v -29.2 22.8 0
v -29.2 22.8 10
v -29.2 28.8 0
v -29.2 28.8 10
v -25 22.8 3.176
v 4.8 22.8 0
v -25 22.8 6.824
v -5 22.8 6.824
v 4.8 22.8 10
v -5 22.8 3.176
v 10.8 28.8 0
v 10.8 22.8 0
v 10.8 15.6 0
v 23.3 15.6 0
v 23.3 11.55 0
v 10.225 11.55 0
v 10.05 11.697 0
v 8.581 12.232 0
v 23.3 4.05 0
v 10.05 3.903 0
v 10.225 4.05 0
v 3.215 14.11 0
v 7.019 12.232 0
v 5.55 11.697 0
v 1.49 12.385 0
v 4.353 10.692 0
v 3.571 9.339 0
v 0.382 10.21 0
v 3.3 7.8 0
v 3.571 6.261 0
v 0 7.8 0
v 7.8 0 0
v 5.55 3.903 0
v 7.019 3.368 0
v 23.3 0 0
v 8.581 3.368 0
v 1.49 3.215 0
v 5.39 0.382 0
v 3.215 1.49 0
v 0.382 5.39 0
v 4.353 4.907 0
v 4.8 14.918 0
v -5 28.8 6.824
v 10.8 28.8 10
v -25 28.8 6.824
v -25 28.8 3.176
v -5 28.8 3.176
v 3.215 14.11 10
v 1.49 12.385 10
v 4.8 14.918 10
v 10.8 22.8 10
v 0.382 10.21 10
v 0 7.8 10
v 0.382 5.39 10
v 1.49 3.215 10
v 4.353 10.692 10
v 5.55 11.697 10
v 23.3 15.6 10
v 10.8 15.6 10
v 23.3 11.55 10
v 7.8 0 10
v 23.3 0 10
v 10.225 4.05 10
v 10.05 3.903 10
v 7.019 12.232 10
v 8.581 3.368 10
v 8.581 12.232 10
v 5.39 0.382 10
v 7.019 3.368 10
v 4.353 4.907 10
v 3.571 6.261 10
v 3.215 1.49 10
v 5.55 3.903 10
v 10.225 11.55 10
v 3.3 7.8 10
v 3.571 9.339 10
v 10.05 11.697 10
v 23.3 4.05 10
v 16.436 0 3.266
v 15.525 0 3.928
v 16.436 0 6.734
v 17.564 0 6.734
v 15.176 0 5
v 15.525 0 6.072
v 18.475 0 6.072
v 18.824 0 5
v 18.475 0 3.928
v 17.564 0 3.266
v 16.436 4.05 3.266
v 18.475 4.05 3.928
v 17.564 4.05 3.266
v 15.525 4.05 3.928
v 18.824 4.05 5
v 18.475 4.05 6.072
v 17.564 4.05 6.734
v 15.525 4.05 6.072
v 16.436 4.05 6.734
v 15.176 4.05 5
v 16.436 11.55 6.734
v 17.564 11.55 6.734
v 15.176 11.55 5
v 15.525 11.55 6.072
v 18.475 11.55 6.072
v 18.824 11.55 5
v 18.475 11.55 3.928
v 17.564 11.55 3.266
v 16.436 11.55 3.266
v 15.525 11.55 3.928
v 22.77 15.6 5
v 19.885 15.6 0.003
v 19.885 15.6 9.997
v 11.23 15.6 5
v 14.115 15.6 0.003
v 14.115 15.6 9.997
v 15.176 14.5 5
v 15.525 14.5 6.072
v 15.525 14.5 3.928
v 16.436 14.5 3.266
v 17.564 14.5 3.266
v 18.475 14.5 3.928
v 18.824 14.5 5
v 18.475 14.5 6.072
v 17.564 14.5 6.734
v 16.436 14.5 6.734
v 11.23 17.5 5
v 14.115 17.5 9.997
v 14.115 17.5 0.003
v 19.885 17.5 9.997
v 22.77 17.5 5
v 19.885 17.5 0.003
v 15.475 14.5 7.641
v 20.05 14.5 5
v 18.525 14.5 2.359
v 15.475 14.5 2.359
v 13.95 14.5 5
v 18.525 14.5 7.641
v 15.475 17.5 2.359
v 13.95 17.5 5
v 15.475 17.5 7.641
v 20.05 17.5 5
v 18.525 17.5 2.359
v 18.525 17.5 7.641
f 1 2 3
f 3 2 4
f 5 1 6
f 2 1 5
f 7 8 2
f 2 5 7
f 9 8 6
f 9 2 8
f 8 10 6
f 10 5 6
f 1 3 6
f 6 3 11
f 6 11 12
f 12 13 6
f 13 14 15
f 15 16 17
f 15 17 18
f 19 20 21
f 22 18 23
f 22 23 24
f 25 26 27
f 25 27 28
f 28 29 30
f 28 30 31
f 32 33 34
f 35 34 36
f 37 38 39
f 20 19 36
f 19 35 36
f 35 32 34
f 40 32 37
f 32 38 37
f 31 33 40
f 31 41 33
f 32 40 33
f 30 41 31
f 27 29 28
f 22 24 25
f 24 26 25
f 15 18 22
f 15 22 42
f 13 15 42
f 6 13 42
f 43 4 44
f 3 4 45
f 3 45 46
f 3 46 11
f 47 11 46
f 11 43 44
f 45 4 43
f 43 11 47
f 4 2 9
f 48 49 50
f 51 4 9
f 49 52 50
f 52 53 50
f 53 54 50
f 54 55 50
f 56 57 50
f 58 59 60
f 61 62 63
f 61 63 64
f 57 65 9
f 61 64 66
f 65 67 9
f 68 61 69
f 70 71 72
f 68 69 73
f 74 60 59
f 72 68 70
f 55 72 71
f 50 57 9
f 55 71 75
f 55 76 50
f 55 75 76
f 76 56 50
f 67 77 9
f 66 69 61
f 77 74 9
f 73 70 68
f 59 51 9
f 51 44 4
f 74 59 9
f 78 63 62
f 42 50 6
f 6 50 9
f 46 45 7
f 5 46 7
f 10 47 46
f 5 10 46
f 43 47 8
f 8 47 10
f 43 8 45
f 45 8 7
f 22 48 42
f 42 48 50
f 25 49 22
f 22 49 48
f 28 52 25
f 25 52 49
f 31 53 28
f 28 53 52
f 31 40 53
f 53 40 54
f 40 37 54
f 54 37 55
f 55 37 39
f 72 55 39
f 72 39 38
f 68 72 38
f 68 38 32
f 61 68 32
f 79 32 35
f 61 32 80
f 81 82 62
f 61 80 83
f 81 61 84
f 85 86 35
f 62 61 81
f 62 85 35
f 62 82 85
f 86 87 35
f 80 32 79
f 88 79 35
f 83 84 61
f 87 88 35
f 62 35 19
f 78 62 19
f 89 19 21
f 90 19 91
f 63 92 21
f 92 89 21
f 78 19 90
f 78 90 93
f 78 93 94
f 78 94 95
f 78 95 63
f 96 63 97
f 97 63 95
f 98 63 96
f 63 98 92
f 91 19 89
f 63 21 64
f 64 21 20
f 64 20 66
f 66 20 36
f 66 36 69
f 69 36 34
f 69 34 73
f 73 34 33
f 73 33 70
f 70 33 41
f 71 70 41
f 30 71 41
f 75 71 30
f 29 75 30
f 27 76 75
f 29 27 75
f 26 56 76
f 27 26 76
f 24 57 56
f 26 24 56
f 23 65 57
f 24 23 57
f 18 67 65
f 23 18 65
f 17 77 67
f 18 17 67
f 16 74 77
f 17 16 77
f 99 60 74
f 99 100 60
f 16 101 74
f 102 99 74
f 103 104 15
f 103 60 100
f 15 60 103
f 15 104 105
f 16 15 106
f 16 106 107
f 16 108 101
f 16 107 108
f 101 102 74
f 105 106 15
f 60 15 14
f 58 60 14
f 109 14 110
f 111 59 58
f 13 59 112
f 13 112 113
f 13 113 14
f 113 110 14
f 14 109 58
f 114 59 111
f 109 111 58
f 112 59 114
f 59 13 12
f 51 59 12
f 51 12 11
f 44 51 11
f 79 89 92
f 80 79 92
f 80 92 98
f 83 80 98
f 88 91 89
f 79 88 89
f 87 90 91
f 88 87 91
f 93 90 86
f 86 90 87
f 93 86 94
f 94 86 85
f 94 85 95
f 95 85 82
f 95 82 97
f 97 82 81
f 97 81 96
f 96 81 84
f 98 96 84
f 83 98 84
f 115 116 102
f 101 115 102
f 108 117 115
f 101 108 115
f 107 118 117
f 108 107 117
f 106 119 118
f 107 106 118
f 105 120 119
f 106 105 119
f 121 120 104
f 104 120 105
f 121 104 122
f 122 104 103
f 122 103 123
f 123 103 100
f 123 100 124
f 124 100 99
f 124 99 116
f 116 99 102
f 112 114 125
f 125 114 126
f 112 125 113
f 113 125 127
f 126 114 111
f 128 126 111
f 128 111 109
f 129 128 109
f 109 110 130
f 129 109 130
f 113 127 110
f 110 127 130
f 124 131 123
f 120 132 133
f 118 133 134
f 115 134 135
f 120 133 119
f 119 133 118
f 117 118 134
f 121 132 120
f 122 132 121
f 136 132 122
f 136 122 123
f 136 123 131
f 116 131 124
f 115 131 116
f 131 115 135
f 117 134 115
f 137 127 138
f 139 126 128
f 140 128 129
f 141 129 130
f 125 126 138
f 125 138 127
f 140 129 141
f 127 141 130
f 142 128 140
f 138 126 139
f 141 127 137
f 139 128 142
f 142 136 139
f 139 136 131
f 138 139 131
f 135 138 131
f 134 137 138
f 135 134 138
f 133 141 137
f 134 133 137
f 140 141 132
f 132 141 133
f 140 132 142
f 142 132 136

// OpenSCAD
// file: functions.scad
// PRUSA iteration3
// Functions used in many files
// GNU GPL v3
// Josef Průša <josefprusa@me.com>
// Václav 'ax' Hůla <axtheb@gmail.com>
// Vlnofka <>
// http://www.reprap.org/wiki/Prusa_Mendel
// http://github.com/josefprusa/Prusa3


module nut(d,h,horizontal=true){
    cornerdiameter =  (d / 2) / cos (180 / 6);
    cylinder(h = h, r = cornerdiameter, $fn = 6);
    if(horizontal){
        for(i = [1:6]){
            rotate([0,0,60*i]) translate([-cornerdiameter-0.2,0,0]) rotate([0,0,-45]) cube([2,2,h]);
        }
    }
}

module fillet(radius, height=100, $fn=0) {
    //this creates acutal fillet
    translate([-radius, -radius, -height / 2 - 0.02]) difference() {
        cube([radius * 2, radius * 2, height + 0.04]);
        if ($fn == 0 && (radius == 2 || radius == 3 || radius == 4)) {
            cylinder(r=radius, h=height + 0.04, $fn=4 * radius);
        } else {
            cylinder(r=radius, h=height + 0.04, $fn=$fn);
        }

    }
}

module cube_fillet(size, radius=-1, vertical=[3,3,3,3], top=[0,0,0,0], bottom=[0,0,0,0], center=false, $fn=0){
    //
    if (use_fillets == 1) {
        if (center) {
            cube_fillet_inside(size, radius, vertical, top, bottom, $fn);
        } else {
            translate([size[0]/2, size[1]/2, size[2]/2])
                cube_fillet_inside(size, radius, vertical, top, bottom, $fn);
        }
    } else {
        if (use_fillets == 2) {
            if (center) {
                cube_fillet_inside(size, radius, vertical, top, bottom, 4);
            } else {
                translate([size[0]/2, size[1]/2, size[2]/2])
                    cube_fillet_inside(size, radius, vertical, top, bottom, 4);
            }

        } else {
            cube(size, center);
        }
    }

}

module cube_negative_fillet(size, radius=-1, vertical=[3,3,3,3], top=[0,0,0,0], bottom=[0,0,0,0], $fn=0){

    j=[1,0,1,0];

    for (i=[0:3]) {
        if (radius > -1) {
            rotate([0, 0, 90*i]) translate([size[1-j[i]]/2, size[j[i]]/2, 0]) fillet(radius, size[2], $fn=$fn);
        } else {
            rotate([0, 0, 90*i]) translate([size[1-j[i]]/2, size[j[i]]/2, 0]) fillet(vertical[i], size[2], $fn=$fn);
        }
        rotate([90*i, -90, 0]) translate([size[2]/2, size[j[i]]/2, 0 ]) fillet(top[i], size[1-j[i]], $fn=$fn);
        rotate([90*(4-i), 90, 0]) translate([size[2]/2, size[j[i]]/2, 0]) fillet(bottom[i], size[1-j[i]], $fn=$fn);

    }
}

module cube_fillet_inside(size, radius=-1, vertical=[3,3,3,3], top=[0,0,0,0], bottom=[0,0,0,0], $fn=0){
    //makes CENTERED cube with round corners
    // if you give it radius, it will fillet vertical corners.
    //othervise use vertical, top, bottom arrays
    //when viewed from top, it starts in upper right corner (+x,+y quadrant) , goes counterclockwise
    //top/bottom fillet starts in direction of Y axis and goes CCW too


    if (radius == 0) {
        cube(size, center=true);
    } else {
        difference() {
            cube(size, center=true);
            cube_negative_fillet(size, radius, vertical, top, bottom, $fn);
        }
    }
}


module nema17(places=[1,1,1,1], size=15.5, h=10, holes=false, shadow=false, $fn=24){
    for (i=[0:3]) {
        if (places[i] == 1) {
            rotate([0, 0, 90*i]) translate([size, size, 0]) {
                if (holes) {
                    rotate([0, 0, -90*i])  translate([0,0,-10]) screw(r=1.7, slant=false, head_drop=13, $fn=$fn, h=h+12);
                } else {
                    rotate([0, 0, -90*i]) cylinder(h=h, r=5.5, $fn=$fn);
                } 
            }
        }
    }
    if (shadow != false) {
        %translate ([0, 0, shadow+17.5+3]) cube([42,42,35], center = true);
    //flange
        %translate ([0, 0, shadow+21+3-21-1]) cylinder(r=11,h=2, center = true, $fn=20);
    //shaft
        %translate ([0, 0, shadow+21+3-21-7]) cylinder(r=2.5,h=14, center = true);
    }
}

module screw(h=20, r=2, r_head=3.5, head_drop=0, slant=i_am_box, poly=false, $fn=0){
    //makes screw with head
    //for substraction as screw hole
    if (poly) {
        cylinder_poly(h=h, r=r, $fn=$fn);
    } else {
        cylinder(h=h, r=r, $fn=$fn);
    }
    if (slant) {
        translate([0, 0, head_drop-0.01]) cylinder(h=r_head, r2=0, r1=r_head, $fn=$fn);
    }

    if (head_drop > 0) {
        translate([0, 0, -0.01]) cylinder(h=head_drop+0.01, r=r_head, $fn=$fn);
    }
}

module plate_screw(long=0) {
    if (i_am_box == 0) {
        translate([0, 0, -long]) screw(head_drop=14 + long, h=30 + long, r_head=3.6, r=1.7, $fn=24, slant=false);
    } else {
        translate([0, 0, -2 - long]) screw(head_drop=14 + long, h=30 + long, r_head=4.5, r=2, $fn=24, slant=true);
    }
}

//radius of the idler assembly (to surface that touches belt, ignoring guide walls)
function idler_assy_r_inner(idler_bearing) = (idler_bearing[0] / 2) + (6 * single_wall_width + 0.2) * idler_bearing[3];
//outer radius of the idler assembly (to smooth side of belt) 
function idler_assy_r_outer(idler_bearing) = idler_assy_r_inner(idler_bearing) + belt_thickness + 1;


module idler_assy(idler_bearing = [22, 7, 8, 1]) {

    //bearing axle
    translate([0,0,-1]) cylinder(h = 120, r=(idler_bearing[2] + 1) / 2, $fn=small_hole_segments, center=true);
    //bearing shadow
    %cylinder(h = idler_bearing[1], r=idler_bearing[0]/2, center=true);
    //belt shadow
    %cylinder(h = belt_width, r=idler_assy_r_outer(idler_bearing), center=true);

    cylinder(h = idler_width + 1, r=idler_assy_r_outer(idler_bearing) + 0.5, center=true);
}

module belt(len, side = 0){
    //belt. To be substracted from model
    //len is in +Z, smooth side in +X, Y centered
    translate([-0.5, 0, 0]) maketeeth(len);
    translate([0, -4.5, -0.01]) cube([belt_thickness, 9, len + 0.02]);
    if (side != 0) {
    translate([0, -4.5 + side, -0.01]) cube_fillet([belt_thickness, 9, len + 0.02], vertical = [3, 0, 0, 0]);
    }
}


module maketeeth(len){
    //Belt teeth. 
    for (i = [0 : len / belt_tooth_distance]) {
        translate([0, 0, i * belt_tooth_distance]) cube([2, 9, belt_tooth_distance * belt_tooth_ratio], center = true);
    }
}
// file: metric.scad
// PRUSA iteration3
// Default metric sizes
// GNU GPL v3
// Josef Průša <josefprusa@me.com>
// http://www.reprap.org/wiki/Prusa_Mendel
// http://github.com/prusajr/PrusaMendel

// DONT CHANGE THIS FILE! ALTER VALUES IN CONFIGURATION.SCAD INSTEAD

// RODS

threaded_rod_diameter = 8.7;
threaded_rod_diameter_horizontal = 8.7;
smooth_bar_diameter = 8;
smooth_bar_diameter_horizontal = 8.8;

// Nuts and bolts

m8_diameter = 9;
m8_nut_diameter = 14.1;

m4_diameter = 4.5;
m4_nut_diameter = 9;

m3_diameter = 3.6;
m3_nut_diameter = 5.3;
m3_nut_diameter_horizontal = 6.1;

// Bushing holder

bushing_core_diameter = smooth_bar_diameter;
bushing_material_thickness = 1;

// Motors

motor_shaft = 5.5;
// file: configuration.scad
// PRUSA Mendel  
// Configuration file
// GNU GPL v3
// Josef Průša
// josefprusa@me.com
// prusadjs.cz
// http://www.reprap.org/wiki/Prusa_Mendel
// http://github.com/prusajr/PrusaMendel

// PLEASE SELECT ONE OF THE CONFIGURATIONS BELOW
// BY UN-COMMENTING IT

// Uncomment for metric settings
// METRIC METRIC METRIC METRIC METRIC METRIC METRIC METRIC 

include <metric.scad>;

// CUSTOM CUSTOM CUSTOM CUSTOM CUSTOM CUSTOM CUSTOM CUSTOM CUSTOM

thin_wall = 3;


// Linear bearing version
linear = false;
// set false for LM-8UU, true for LM-E-8UU (ignore if linear is set to false)
lme8uu = false;



// CHANGE ONLY THE STUFF YOU KNOW
// IT WILL REPLACE DEFAULT SETTING

// RODS

// threaded_rod_diameter = 0;
// threaded_rod_diameter_horizontal = 0;
// smooth_bar_diameter = 0;
// smooth_bar_diameter_horizontal = 0;

// Nuts and bolts

m3_diameter = 3 / cos(180 / 8) + 0.4;
m3_radius = m3_diameter / 2;

m3_nut_diameter = 5.5 / cos(180 / 6) + 0.4;
m3_nut_radius = m3_nut_diameter / 2;

m3_nut_depth = 2.5;

// m8_diameter = 0;
// m8_nut_diameter = 0;

// m4_diameter = 0;
// m4_nut_diameter = 0;

// m3_diameter = 0;
// m3_nut_diameter = 0;

// Bushing holder

// bushing_core_diameter = smooth_bar_diameter;
// bushing_material_thickness = 0;


///counted stuff
m3_nut_diameter_bigger = ((m3_nut_diameter  / 2) / cos (180 / 6))*2;

// functions 
include <functions.scad>
// main file
// PRUSA Mendel  
// Endstop holder
// Used to attach endstops to 8mm rods
// GNU GPL v3
// Josef Průša
// josefprusa@me.com
// prusadjs.cz
// http://www.reprap.org/wiki/Prusa_Mendel
// http://github.com/prusajr/PrusaMendel

include <configuration.scad>

/**
 * @id endstop-holder
 * @name Endstop holder
 * @category Printed
 * @using 1 m3x20xhex
 * @using 1 m3nut
 * @using 2 m3washer
 */
module endstop(){
outer_diameter = m8_diameter/2+3.3;
screw_hole_spacing = 20;
opening_size = m8_diameter-1.5; //openingsize
distance_from_rod = 11;

difference(){
	union(){

		translate([outer_diameter, outer_diameter, 0]) cylinder(h =10, r = outer_diameter, $fn = 20);
		translate([outer_diameter, 0, 0]) cube([15.5,outer_diameter*2,10]);
		#translate([outer_diameter-3, outer_diameter, 0]) cube([6, 4+distance_from_rod+1, 10]);
		translate([outer_diameter+3-40, outer_diameter+distance_from_rod+4, 0]) cube([40, 6, 10]);
		translate([17, 17.5, 5]) rotate([90, 0, 0]) #cylinder(h =5, r = 5.77, $fn = 6);
	}




	translate([9, outer_diameter-opening_size/2, -1]) cube([18,opening_size,20]);
	translate([outer_diameter, outer_diameter, -1]) cylinder(h =20, r = m8_diameter/2, $fn = 18);
	translate([-25,22,10/2-m3_diameter/2]) cube ([ 20,8,m3_diameter]);
	//Securing hole
	translate([17, 17, 5]) rotate([90, 0, 0]) cylinder(h =20, r = m3_diameter/2, $fn = 10);
	translate([17, 19.5, 5]) rotate([90, 0, 0]) cylinder(h =5, r = m3_nut_diameter_horizontal/2, $fn = 6);

	translate([17, 17, 5]) rotate([90, 0, 0]) cylinder(h =20, r = m3_diameter/2, $fn = 10);
	translate([-4, 17, 5]) rotate([90, 0, 0]) cylinder(h =20, r = m3_diameter/2, $fn = 10);
	translate([-(4+screw_hole_spacing), 17, 5]) rotate([90, 0, 0]) cylinder(h =20, r = m3_diameter/2, $fn = 10);
}
}
endstop();
